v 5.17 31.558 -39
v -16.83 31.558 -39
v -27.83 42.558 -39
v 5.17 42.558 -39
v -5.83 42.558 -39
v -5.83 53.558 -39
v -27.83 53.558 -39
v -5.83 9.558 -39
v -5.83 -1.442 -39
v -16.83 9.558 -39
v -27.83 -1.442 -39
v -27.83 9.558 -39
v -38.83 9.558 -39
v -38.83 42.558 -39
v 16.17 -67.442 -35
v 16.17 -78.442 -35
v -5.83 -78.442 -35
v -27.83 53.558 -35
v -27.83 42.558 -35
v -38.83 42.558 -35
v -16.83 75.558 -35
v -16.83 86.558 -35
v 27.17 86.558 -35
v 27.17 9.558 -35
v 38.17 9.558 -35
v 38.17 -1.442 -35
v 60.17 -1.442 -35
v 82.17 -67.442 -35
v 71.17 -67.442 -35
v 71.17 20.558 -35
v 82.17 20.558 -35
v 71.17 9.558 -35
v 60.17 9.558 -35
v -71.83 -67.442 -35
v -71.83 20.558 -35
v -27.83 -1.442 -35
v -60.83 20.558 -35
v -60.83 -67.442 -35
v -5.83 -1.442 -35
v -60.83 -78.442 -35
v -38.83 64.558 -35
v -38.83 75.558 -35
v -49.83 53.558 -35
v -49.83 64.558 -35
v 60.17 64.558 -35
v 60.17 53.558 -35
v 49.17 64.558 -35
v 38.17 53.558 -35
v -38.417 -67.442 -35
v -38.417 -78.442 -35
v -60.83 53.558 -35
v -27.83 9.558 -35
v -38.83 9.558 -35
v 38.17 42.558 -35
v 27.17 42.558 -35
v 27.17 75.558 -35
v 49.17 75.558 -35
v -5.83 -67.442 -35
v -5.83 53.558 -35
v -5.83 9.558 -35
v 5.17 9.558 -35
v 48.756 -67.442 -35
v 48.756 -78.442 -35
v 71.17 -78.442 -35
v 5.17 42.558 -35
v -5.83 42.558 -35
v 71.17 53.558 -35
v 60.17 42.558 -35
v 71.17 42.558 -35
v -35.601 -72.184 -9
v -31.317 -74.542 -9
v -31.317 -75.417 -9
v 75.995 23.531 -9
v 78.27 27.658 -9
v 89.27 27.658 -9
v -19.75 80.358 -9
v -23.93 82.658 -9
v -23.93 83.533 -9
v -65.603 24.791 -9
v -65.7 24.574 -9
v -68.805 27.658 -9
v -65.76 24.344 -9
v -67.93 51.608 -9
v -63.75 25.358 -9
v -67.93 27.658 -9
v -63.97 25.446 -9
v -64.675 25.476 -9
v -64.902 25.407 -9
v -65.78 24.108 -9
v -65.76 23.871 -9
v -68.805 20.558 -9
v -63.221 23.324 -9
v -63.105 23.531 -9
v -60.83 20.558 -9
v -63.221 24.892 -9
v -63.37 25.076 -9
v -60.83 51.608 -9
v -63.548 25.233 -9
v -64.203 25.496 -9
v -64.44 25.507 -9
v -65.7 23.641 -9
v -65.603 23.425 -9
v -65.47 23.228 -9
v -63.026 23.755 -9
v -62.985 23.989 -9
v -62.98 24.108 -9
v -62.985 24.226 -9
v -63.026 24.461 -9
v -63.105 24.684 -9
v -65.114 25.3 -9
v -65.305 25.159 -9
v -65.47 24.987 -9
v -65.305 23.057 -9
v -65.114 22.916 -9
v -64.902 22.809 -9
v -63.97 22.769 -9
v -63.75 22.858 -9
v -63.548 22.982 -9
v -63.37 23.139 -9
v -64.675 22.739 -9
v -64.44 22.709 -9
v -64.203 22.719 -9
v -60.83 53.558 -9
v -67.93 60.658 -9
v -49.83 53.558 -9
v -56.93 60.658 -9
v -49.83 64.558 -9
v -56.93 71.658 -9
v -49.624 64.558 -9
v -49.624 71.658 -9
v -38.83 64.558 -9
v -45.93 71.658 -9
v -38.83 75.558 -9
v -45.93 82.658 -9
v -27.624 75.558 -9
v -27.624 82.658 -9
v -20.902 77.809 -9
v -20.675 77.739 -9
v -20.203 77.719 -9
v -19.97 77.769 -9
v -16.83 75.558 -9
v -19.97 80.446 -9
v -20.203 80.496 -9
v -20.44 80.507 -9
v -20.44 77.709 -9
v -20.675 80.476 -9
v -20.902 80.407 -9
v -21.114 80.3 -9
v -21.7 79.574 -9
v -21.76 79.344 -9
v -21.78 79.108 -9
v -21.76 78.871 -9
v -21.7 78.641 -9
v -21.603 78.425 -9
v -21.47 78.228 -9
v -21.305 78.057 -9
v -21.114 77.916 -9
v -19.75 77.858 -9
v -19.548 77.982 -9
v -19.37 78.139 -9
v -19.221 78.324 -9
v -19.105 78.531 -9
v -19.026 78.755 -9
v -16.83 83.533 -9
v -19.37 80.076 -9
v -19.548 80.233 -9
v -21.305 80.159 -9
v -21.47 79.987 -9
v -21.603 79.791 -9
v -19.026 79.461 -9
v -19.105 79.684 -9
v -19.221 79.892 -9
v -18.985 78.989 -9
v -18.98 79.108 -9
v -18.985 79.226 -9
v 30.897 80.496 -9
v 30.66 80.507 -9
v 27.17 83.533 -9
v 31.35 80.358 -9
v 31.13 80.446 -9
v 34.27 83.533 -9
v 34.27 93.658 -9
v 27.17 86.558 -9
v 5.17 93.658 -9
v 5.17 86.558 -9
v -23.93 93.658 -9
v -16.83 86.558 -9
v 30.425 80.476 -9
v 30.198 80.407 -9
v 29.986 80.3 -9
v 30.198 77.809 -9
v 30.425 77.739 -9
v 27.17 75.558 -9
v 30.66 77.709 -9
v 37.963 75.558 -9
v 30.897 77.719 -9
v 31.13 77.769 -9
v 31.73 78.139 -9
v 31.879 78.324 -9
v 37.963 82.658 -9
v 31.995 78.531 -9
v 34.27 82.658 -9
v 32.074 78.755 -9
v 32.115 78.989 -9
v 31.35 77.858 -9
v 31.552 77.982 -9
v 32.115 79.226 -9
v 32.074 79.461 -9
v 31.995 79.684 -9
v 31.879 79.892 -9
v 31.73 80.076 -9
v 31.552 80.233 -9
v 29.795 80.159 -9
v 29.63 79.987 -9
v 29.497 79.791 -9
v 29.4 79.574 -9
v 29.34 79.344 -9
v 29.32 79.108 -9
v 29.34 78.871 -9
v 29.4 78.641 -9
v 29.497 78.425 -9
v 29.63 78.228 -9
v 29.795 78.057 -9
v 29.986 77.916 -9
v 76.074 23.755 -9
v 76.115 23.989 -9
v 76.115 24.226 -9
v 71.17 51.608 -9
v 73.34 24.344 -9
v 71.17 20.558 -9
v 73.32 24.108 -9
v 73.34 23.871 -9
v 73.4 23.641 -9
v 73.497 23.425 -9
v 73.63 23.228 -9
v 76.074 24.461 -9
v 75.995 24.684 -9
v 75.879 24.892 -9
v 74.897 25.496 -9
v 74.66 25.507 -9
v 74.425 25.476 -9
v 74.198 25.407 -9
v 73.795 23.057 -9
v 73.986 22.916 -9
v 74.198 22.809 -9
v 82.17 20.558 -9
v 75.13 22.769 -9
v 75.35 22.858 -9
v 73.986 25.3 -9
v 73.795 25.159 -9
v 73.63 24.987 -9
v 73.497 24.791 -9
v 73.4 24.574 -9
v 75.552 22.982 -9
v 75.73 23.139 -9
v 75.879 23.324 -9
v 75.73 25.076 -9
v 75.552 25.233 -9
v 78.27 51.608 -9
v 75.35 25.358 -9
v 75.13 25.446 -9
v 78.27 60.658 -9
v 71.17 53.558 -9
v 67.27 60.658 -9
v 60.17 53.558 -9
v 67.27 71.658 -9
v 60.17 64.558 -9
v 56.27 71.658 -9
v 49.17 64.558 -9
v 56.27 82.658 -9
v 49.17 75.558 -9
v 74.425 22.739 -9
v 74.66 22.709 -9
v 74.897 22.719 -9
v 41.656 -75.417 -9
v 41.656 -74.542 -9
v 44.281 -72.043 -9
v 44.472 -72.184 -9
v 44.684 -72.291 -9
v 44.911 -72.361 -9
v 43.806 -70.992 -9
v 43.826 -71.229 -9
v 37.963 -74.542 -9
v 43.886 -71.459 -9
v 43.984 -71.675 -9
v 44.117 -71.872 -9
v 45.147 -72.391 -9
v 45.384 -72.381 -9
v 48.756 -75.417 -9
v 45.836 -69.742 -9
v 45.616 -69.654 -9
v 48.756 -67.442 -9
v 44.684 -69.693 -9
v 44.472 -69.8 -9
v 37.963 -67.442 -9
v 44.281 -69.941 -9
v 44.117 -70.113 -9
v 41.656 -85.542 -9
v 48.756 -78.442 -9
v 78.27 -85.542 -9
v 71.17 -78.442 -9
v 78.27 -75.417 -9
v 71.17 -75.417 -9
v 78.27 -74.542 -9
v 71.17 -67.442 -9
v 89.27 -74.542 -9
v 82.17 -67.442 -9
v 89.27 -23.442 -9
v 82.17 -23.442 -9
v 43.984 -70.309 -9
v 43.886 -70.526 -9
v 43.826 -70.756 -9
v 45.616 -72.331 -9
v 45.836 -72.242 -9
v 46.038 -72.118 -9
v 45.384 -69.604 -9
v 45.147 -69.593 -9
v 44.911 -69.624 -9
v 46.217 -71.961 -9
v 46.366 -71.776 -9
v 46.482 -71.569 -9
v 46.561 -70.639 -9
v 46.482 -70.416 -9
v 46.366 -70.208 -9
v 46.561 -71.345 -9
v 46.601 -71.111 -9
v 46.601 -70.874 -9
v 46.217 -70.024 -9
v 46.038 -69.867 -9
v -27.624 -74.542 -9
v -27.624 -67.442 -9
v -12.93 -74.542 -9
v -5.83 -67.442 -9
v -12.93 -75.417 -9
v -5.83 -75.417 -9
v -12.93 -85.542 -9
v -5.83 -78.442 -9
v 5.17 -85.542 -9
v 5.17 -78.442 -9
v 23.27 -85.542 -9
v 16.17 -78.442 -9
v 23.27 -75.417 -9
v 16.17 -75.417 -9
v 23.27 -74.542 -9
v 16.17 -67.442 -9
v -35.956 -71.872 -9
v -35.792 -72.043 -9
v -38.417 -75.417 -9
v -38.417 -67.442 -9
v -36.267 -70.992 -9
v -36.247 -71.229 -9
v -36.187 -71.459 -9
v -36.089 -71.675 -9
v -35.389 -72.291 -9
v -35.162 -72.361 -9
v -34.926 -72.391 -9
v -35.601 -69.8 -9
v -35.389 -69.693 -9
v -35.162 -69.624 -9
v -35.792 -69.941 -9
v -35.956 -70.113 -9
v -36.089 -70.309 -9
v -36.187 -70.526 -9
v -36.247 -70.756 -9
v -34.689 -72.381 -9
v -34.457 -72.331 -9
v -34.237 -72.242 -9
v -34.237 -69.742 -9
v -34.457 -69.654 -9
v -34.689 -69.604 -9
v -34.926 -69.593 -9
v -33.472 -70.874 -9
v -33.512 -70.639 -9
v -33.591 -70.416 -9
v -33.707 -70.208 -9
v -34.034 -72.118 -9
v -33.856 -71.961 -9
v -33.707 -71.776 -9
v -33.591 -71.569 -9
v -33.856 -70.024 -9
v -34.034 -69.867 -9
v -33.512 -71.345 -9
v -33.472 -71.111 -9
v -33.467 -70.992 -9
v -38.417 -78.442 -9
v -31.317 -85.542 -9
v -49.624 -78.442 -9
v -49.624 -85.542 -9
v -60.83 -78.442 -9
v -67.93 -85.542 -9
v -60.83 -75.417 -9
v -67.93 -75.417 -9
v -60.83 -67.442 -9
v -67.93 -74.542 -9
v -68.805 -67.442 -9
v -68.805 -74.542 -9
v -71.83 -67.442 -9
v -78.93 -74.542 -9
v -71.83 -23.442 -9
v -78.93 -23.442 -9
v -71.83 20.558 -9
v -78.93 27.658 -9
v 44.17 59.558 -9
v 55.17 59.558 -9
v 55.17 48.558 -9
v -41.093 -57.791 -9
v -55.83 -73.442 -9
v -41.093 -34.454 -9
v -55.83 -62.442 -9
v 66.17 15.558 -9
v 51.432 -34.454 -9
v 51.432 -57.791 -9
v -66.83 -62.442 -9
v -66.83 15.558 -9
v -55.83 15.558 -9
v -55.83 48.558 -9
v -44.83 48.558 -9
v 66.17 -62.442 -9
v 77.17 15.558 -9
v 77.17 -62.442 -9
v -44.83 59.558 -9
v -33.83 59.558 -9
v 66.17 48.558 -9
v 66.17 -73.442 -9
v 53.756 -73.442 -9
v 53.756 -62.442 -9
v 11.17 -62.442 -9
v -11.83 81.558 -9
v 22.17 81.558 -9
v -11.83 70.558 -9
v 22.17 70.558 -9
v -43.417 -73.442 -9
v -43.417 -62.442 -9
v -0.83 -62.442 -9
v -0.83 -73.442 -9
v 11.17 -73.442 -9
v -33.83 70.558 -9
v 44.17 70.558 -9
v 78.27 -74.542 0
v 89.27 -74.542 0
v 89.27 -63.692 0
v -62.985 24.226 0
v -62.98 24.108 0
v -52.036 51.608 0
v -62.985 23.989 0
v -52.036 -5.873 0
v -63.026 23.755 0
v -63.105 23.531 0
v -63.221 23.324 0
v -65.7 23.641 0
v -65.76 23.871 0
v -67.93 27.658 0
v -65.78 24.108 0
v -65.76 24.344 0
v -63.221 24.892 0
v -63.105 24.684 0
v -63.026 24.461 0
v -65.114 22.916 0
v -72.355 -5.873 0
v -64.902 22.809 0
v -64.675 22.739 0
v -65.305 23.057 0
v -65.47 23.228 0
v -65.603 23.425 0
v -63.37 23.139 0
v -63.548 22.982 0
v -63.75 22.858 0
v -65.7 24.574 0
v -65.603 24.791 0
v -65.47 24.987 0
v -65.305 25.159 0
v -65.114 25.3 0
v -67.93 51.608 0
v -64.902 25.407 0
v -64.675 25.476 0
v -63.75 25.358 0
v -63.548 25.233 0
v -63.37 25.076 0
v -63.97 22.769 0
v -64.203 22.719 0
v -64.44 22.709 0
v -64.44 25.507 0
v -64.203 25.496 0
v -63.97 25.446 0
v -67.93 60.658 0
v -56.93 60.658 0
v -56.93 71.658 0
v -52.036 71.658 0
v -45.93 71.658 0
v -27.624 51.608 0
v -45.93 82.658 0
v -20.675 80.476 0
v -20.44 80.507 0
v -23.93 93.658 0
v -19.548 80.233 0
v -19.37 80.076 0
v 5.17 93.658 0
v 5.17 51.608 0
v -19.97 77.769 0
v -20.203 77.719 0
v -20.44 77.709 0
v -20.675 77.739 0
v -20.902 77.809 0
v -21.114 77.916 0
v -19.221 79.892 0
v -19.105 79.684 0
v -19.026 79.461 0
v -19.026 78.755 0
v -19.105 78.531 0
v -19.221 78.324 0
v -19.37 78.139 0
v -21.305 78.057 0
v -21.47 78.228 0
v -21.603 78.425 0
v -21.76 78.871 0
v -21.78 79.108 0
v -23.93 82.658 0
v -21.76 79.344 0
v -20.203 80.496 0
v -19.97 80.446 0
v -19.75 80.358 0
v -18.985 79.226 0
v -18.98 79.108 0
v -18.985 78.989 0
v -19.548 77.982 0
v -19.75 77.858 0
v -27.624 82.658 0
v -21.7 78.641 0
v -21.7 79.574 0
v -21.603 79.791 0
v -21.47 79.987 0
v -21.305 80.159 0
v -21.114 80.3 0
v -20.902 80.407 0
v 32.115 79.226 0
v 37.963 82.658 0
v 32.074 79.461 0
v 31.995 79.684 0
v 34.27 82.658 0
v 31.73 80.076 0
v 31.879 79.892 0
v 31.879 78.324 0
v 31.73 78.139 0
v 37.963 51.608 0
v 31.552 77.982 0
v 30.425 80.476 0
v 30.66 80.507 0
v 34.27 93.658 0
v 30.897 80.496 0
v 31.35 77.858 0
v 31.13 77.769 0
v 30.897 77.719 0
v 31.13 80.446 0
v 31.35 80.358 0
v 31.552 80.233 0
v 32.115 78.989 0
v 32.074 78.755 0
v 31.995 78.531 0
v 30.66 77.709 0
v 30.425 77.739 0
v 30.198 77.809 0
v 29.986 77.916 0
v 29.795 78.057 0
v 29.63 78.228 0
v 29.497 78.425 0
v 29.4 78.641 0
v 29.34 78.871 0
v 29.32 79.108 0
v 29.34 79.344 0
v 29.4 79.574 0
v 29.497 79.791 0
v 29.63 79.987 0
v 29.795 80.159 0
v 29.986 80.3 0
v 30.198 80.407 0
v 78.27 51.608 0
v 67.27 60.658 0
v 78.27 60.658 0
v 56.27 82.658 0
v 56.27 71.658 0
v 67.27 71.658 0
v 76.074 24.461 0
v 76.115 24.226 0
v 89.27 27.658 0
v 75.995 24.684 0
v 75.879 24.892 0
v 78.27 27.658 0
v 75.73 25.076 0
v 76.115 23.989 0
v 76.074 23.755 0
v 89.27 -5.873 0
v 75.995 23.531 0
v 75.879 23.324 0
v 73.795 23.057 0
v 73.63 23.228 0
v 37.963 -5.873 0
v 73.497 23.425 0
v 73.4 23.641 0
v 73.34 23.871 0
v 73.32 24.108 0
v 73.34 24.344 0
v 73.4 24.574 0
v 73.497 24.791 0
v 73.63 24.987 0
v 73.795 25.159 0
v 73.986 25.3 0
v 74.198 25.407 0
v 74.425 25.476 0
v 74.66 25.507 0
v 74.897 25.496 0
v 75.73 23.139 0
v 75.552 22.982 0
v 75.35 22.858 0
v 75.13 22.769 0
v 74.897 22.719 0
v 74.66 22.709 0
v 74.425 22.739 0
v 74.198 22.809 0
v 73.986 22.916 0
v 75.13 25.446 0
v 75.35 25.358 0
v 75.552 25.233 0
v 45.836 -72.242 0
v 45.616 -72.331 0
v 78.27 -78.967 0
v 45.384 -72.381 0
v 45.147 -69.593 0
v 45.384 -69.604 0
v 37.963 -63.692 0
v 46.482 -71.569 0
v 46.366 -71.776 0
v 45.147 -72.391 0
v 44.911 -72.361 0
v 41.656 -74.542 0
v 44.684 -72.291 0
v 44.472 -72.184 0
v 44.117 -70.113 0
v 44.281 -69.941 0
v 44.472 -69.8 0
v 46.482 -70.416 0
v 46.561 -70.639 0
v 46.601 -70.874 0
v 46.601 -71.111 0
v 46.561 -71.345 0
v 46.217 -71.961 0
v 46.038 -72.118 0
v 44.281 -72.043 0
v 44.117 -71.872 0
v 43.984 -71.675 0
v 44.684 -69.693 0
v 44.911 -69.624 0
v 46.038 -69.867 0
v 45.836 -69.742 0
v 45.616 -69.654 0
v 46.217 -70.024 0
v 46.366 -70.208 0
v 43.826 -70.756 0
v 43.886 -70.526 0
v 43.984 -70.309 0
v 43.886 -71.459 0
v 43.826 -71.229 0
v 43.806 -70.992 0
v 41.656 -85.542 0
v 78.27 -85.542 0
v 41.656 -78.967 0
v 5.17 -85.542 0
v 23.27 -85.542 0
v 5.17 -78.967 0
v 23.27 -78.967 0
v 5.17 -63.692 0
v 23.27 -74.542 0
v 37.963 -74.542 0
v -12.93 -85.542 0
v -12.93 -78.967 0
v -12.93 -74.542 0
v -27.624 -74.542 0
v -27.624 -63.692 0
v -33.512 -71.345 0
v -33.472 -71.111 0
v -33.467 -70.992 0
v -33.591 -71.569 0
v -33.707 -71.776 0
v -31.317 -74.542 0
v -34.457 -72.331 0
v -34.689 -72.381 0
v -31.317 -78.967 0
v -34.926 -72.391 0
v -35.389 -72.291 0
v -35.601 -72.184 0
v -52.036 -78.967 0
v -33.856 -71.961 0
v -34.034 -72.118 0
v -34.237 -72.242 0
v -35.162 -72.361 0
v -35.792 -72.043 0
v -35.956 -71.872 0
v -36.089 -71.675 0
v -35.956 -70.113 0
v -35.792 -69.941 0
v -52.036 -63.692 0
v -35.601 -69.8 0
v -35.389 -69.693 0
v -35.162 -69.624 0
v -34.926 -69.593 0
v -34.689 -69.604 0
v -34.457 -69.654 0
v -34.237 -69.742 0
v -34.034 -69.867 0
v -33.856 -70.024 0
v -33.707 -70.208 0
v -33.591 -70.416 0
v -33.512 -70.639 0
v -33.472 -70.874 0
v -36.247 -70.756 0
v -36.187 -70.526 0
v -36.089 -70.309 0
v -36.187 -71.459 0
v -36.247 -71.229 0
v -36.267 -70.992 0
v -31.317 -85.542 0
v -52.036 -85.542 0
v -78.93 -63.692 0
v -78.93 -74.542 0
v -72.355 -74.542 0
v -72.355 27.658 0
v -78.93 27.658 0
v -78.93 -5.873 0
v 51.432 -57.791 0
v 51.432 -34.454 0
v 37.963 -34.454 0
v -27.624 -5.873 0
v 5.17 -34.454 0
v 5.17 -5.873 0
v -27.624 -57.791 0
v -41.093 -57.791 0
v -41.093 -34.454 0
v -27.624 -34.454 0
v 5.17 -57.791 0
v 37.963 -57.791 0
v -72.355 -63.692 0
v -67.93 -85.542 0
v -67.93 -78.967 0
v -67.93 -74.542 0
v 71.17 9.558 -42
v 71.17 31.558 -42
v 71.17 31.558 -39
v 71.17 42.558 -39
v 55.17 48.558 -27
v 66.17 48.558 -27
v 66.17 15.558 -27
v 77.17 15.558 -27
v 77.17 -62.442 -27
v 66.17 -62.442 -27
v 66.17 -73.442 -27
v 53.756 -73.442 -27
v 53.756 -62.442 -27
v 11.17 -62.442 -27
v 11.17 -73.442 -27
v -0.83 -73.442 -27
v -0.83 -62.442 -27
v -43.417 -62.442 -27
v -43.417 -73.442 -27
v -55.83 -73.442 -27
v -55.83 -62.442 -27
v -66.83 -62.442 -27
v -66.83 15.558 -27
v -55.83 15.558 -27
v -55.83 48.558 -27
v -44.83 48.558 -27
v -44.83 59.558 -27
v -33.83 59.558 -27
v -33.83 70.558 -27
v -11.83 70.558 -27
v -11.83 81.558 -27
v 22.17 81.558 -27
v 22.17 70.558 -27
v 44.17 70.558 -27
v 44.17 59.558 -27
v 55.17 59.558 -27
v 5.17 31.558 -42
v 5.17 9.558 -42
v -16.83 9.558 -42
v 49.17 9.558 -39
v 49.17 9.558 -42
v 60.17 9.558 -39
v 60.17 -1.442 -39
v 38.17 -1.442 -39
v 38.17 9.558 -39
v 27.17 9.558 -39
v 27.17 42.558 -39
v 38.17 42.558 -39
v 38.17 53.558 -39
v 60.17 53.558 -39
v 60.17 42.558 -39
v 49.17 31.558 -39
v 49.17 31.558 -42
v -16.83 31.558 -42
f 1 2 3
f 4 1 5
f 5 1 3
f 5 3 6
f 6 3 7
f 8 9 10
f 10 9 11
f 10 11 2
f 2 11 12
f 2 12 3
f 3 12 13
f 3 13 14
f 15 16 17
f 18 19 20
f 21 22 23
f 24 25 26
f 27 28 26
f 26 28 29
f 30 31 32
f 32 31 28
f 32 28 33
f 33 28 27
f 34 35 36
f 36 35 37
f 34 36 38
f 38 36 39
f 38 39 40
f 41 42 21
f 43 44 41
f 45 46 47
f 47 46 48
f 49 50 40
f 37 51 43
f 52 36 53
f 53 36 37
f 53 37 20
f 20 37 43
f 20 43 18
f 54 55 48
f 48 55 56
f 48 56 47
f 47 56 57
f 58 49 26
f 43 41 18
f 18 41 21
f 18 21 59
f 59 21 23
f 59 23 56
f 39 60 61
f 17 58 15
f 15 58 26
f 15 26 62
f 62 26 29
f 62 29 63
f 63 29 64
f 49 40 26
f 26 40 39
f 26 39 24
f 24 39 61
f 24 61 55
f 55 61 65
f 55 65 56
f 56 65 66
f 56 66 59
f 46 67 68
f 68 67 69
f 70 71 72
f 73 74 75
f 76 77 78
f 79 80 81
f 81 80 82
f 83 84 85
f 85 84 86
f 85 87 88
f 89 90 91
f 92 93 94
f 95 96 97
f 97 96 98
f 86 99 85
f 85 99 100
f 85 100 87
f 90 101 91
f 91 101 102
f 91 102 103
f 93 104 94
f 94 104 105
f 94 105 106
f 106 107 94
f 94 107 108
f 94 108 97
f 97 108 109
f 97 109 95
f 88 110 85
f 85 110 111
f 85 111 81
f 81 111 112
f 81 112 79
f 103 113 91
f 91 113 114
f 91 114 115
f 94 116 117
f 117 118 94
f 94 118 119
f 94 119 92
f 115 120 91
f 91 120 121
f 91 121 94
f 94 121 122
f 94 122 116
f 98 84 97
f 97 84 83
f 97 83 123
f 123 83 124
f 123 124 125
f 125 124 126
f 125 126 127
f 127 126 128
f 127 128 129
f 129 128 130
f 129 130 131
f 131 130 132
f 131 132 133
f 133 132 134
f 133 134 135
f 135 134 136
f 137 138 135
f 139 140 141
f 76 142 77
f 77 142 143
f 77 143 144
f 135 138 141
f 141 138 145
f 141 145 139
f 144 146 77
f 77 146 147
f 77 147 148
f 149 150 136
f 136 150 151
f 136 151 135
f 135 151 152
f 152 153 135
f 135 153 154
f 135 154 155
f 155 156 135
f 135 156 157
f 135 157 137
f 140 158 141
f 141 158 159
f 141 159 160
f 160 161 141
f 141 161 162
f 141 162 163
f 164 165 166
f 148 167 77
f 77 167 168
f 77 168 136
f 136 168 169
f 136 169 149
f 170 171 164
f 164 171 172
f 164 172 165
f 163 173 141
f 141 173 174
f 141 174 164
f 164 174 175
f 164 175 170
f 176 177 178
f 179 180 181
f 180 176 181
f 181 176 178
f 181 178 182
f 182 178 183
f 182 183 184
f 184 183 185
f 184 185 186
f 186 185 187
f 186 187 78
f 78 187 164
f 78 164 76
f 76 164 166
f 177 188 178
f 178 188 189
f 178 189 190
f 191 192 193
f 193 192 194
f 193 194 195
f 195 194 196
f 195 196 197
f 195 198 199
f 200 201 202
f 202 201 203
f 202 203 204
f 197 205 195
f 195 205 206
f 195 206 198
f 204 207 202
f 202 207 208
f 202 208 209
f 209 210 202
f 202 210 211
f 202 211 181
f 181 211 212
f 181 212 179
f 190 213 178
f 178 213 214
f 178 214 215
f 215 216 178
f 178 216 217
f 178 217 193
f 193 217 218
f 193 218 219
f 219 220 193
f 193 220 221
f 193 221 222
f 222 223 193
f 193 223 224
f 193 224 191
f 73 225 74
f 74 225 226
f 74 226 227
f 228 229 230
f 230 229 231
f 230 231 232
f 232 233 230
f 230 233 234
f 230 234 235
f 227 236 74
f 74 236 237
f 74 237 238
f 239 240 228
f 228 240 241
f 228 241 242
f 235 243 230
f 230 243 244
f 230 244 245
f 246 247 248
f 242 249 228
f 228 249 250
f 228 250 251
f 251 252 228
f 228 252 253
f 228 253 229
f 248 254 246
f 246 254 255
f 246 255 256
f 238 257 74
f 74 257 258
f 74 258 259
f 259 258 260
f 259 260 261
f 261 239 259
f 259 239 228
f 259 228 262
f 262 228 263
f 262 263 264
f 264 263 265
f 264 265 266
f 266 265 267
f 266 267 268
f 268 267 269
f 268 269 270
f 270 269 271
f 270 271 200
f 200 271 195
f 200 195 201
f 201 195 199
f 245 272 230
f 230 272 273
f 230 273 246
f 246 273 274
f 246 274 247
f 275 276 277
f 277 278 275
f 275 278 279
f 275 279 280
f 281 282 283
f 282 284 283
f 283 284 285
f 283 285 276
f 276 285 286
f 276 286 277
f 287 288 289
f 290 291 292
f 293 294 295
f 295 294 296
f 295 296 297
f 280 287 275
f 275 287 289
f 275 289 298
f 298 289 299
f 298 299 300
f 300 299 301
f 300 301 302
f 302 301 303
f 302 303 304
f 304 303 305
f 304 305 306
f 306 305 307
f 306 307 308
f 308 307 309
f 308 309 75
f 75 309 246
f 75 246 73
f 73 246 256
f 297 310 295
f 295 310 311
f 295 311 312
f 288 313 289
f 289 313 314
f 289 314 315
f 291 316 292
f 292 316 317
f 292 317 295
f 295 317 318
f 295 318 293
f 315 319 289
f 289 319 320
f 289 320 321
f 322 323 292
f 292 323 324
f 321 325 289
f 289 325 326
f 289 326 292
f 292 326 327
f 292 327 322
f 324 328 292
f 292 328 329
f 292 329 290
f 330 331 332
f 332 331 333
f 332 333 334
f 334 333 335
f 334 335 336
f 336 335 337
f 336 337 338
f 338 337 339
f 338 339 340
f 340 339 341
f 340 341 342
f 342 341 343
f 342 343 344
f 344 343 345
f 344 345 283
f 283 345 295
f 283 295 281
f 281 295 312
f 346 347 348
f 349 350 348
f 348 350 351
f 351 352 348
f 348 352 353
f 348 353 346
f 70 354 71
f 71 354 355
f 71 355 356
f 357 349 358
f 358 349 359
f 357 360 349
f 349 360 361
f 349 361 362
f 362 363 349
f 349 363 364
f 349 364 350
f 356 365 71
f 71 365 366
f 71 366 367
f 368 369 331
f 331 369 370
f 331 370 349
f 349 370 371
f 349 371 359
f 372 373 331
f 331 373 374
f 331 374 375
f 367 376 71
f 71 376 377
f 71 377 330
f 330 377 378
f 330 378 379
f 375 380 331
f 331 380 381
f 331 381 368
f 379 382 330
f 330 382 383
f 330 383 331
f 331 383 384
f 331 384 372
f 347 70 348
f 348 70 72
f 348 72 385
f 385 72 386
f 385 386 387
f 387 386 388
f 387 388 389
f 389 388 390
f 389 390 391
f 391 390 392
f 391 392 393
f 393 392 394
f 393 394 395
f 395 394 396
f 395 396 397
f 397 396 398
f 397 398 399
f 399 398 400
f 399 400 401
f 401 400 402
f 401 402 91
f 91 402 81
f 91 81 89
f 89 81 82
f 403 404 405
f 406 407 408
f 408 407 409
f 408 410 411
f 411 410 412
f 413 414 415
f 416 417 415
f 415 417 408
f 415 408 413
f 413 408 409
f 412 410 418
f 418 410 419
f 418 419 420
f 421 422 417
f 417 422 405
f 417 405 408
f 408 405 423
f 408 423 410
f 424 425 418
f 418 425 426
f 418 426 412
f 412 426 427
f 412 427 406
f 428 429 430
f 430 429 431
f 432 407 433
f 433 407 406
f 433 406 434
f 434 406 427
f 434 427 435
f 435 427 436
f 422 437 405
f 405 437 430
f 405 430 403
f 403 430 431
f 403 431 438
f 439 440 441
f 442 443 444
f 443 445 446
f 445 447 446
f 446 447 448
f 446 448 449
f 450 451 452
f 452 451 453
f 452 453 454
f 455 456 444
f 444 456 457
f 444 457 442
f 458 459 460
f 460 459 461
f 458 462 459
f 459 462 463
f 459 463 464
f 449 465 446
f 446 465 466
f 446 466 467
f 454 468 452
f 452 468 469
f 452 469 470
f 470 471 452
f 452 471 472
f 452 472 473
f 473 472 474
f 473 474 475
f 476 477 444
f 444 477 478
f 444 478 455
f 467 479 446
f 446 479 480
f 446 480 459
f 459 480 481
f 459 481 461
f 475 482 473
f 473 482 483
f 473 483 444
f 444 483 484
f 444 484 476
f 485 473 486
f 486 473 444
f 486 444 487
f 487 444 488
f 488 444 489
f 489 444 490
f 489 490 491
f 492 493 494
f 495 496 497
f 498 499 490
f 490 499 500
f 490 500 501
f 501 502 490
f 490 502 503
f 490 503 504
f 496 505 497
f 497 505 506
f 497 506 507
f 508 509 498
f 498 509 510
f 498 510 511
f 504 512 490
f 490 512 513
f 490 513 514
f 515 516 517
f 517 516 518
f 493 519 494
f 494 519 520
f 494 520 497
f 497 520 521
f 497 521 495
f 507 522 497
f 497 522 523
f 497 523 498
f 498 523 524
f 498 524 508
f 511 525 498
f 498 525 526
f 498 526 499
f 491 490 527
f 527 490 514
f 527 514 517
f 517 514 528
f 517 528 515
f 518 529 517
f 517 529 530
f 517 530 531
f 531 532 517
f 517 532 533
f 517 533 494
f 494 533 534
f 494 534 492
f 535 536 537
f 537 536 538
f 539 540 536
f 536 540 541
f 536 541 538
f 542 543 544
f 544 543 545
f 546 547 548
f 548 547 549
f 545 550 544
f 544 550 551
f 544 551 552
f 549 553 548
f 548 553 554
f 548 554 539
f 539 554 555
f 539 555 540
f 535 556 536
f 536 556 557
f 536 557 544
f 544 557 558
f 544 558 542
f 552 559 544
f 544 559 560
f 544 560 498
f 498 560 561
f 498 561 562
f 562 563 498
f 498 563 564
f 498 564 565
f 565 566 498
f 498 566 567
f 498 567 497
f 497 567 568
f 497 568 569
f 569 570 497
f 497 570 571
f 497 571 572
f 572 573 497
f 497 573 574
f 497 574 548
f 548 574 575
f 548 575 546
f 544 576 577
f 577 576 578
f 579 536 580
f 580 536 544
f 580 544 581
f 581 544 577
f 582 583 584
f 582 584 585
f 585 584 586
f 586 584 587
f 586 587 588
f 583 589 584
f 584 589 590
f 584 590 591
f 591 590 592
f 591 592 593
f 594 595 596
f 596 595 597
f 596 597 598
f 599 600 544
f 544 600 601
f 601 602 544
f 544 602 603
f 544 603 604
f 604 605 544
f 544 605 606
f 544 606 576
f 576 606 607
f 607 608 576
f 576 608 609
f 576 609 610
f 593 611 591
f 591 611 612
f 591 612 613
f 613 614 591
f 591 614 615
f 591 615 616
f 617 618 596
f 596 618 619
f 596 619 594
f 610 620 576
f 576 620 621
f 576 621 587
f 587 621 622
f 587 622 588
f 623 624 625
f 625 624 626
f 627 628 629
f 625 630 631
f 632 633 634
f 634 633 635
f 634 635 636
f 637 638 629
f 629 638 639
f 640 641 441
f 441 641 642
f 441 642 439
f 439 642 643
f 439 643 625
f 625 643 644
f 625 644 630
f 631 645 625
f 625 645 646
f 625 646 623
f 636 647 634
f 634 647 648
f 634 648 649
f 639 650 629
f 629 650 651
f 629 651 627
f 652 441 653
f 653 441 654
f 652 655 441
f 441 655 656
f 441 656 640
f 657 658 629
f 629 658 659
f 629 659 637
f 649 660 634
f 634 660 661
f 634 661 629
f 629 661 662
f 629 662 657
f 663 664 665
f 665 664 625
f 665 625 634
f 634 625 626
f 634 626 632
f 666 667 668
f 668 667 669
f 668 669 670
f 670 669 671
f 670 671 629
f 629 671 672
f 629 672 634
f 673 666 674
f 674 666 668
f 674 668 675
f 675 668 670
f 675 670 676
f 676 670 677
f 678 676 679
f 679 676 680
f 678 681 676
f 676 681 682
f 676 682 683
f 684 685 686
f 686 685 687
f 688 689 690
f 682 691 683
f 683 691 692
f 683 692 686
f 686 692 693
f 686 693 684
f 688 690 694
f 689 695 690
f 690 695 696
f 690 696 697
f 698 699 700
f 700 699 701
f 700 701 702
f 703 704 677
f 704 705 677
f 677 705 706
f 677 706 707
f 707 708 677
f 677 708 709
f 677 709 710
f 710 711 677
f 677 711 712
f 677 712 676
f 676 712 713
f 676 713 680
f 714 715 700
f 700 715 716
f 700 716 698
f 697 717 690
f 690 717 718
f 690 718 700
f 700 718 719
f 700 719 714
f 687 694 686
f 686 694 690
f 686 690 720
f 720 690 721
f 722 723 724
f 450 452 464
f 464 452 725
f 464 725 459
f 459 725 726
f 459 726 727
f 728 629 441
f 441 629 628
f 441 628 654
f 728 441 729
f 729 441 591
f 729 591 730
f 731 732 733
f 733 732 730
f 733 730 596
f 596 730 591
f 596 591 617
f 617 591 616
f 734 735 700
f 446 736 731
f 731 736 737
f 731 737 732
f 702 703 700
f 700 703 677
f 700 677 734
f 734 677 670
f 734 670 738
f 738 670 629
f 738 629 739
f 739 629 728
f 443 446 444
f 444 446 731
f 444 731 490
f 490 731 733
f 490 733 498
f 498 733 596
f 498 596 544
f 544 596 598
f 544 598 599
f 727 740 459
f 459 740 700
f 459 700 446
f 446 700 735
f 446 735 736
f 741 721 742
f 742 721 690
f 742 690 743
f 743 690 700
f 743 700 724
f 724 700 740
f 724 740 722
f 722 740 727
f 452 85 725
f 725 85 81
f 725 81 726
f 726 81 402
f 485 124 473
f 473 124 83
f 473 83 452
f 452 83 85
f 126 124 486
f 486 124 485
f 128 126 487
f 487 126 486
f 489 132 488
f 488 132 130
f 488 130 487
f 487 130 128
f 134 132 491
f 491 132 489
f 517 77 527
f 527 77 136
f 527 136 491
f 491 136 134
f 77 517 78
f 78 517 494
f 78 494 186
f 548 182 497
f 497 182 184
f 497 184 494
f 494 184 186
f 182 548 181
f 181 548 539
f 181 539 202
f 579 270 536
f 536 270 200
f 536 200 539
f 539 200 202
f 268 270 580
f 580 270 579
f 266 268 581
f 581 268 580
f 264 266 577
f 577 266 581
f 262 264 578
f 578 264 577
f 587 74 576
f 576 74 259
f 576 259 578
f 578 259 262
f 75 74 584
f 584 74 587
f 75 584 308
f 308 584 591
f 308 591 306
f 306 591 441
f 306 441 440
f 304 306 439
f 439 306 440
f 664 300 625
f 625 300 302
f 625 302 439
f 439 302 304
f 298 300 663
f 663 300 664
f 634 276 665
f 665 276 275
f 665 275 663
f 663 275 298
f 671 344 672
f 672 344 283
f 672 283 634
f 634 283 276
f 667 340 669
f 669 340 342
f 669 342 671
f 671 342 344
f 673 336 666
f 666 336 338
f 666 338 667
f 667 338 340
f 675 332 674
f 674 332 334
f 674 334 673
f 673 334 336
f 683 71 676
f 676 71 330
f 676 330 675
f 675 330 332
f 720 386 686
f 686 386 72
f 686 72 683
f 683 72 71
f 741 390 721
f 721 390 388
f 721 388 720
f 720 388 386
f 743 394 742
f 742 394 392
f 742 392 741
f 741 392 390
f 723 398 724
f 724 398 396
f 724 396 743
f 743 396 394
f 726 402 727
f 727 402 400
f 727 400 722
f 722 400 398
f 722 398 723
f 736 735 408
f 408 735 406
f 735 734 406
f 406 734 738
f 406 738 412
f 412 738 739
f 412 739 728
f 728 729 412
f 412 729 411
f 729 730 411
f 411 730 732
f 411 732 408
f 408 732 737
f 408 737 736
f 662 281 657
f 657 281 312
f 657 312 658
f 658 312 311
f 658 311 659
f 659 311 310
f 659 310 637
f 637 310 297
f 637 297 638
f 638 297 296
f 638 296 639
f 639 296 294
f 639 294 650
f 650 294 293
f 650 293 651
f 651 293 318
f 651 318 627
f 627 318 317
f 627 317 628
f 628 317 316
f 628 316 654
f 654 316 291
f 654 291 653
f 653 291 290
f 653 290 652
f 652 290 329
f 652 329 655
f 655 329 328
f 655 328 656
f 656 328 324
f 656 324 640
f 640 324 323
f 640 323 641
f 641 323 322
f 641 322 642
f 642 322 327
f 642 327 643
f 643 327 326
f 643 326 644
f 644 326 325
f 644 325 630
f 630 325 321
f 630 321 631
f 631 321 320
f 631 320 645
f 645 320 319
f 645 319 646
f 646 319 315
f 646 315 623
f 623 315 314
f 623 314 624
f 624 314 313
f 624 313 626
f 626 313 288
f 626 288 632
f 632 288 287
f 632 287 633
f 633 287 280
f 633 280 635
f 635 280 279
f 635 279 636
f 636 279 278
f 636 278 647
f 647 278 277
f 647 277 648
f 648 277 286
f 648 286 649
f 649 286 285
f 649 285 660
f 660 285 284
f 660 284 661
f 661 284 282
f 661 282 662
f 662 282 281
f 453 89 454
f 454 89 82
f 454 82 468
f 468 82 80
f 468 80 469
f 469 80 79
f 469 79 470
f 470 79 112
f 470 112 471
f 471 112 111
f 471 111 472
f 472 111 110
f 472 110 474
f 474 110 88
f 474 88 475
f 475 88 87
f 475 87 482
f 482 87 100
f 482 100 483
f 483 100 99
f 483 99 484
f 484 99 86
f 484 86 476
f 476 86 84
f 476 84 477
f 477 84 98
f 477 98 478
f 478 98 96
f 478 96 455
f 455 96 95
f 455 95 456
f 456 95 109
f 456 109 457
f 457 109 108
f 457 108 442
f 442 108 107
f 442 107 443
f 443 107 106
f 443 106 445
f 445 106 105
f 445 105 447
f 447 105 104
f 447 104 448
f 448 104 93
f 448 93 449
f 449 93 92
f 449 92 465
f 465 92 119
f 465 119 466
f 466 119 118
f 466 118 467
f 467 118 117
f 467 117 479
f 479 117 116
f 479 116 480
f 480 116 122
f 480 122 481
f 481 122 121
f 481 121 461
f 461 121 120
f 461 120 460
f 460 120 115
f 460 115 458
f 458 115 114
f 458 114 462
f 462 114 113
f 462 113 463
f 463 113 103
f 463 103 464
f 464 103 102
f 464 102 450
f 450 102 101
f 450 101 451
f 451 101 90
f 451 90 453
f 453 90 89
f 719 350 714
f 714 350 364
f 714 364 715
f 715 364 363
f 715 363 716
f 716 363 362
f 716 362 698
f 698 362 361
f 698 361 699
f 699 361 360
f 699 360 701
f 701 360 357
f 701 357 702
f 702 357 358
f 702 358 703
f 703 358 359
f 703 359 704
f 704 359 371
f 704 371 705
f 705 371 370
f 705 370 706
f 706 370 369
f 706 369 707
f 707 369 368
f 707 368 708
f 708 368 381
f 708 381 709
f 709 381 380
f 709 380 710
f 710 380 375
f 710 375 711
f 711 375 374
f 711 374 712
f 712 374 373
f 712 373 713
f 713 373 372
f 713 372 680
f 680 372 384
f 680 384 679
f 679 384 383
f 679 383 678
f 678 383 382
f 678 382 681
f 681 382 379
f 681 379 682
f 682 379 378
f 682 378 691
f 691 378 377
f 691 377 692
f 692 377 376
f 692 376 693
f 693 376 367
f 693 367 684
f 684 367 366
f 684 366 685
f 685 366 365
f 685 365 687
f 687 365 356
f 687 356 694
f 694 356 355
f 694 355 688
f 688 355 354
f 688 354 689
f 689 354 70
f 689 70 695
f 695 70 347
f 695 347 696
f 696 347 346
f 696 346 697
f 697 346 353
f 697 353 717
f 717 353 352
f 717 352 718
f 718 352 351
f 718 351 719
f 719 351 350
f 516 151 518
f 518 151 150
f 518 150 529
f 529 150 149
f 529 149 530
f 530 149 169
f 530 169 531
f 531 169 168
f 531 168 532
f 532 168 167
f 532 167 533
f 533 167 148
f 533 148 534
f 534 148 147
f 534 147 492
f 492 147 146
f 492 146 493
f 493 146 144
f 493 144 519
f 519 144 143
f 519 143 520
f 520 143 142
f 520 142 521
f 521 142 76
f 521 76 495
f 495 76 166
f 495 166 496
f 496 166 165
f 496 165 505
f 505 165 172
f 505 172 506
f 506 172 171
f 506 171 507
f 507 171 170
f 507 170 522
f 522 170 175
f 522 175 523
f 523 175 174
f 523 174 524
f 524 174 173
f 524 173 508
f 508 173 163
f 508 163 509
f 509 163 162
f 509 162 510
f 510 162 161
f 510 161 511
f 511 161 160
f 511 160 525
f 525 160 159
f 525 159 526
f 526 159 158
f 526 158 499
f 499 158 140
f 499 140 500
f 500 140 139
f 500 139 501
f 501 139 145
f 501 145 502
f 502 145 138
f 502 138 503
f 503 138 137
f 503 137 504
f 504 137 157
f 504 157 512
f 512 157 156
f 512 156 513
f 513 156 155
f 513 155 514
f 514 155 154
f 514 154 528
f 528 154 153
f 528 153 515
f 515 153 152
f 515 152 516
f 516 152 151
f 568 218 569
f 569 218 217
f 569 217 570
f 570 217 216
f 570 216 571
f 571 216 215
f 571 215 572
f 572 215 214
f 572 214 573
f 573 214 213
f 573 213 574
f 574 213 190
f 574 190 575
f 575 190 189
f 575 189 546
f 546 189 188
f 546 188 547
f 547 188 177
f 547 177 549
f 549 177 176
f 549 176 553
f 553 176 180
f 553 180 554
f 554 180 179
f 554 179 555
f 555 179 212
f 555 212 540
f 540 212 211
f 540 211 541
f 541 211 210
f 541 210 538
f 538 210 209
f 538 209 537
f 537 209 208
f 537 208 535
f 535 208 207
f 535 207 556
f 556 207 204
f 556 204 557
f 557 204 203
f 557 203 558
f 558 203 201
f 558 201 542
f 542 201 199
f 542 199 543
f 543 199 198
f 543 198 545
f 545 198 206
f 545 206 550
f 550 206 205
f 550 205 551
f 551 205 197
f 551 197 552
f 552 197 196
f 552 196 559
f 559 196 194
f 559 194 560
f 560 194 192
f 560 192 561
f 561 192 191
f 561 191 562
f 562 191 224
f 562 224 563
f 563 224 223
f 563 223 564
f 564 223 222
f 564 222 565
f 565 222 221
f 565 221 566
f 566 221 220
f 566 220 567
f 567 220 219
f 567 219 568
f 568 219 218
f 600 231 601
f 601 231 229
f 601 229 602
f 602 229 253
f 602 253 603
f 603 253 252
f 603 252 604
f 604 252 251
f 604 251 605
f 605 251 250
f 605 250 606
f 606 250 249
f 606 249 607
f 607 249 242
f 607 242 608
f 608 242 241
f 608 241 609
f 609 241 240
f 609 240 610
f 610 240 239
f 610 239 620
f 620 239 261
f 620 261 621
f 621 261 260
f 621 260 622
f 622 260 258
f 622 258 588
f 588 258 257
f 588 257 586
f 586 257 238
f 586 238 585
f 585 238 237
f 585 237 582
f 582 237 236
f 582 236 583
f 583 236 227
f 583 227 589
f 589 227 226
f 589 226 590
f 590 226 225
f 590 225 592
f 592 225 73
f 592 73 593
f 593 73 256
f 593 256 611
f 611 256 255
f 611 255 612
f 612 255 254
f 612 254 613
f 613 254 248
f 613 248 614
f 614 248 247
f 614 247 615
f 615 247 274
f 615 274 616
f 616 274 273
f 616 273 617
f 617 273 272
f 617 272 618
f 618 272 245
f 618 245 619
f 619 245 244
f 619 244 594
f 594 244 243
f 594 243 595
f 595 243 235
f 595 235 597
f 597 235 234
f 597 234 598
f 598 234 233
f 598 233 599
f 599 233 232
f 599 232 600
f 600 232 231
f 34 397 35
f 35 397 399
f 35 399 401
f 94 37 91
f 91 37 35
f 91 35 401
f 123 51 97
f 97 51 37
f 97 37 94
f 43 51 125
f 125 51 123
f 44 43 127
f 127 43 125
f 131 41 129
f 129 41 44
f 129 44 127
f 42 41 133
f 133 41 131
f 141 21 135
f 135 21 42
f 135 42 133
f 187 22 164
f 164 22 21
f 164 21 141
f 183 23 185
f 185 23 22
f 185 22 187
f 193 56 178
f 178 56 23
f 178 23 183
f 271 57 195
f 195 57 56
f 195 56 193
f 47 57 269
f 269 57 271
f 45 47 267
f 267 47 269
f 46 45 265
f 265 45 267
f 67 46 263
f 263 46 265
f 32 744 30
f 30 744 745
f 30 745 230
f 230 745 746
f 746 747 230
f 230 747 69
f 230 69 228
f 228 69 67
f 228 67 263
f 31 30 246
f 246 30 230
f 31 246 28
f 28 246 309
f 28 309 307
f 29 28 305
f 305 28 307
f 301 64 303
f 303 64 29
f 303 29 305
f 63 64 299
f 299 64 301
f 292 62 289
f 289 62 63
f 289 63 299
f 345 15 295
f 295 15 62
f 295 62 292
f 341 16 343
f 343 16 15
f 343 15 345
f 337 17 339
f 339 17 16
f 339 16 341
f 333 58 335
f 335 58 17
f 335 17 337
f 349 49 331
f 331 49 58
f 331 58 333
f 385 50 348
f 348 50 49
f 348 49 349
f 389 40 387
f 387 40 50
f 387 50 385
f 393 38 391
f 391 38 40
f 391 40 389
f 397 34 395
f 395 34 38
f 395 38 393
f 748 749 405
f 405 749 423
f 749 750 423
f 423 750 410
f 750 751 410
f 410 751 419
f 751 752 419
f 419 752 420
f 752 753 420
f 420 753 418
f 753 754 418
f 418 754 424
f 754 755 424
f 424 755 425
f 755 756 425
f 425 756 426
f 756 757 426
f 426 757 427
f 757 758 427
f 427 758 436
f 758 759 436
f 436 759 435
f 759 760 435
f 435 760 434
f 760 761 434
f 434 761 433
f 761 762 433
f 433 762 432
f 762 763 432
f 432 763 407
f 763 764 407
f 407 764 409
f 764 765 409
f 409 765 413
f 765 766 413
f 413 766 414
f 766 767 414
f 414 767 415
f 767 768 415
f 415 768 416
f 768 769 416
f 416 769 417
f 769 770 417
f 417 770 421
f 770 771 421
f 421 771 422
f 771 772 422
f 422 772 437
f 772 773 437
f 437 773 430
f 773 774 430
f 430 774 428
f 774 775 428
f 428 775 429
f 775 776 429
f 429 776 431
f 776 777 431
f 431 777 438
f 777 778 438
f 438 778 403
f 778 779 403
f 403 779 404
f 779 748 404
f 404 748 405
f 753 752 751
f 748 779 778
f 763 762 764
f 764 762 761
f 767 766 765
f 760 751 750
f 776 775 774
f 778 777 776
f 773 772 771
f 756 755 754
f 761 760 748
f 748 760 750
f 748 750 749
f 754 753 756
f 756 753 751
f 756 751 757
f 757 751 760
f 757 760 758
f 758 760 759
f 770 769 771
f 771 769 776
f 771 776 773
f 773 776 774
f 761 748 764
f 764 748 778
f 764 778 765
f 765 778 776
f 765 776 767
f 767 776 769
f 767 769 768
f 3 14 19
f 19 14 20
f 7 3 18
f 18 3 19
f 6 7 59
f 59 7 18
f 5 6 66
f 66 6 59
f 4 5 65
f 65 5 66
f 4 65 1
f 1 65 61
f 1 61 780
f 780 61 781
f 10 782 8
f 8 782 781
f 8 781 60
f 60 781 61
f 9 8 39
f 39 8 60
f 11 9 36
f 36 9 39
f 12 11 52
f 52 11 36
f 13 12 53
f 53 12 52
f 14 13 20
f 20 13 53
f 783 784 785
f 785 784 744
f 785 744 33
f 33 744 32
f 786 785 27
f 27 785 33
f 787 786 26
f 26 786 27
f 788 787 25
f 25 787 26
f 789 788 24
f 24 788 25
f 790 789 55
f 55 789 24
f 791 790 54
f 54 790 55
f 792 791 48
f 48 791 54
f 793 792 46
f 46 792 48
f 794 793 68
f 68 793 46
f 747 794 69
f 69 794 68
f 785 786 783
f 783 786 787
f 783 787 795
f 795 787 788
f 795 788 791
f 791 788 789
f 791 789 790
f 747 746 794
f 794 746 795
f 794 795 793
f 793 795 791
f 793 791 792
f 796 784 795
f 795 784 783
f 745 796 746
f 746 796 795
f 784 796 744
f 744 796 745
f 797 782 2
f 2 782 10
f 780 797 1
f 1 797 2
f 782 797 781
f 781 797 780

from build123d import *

# Parameters (mm, degrees)
SALIENTE_EXTRUIR1_DEPTH = 9
CROQUIS4_W              = 92.524179437
CROQUIS4_H              = 23.337512491
CROQUIS4_R              = 1.4
CORTAR_EXTRUIR1_DEPTH   = 130.69901246
SALIENTE_EXTRUIR2_DEPTH = 18
SALIENTE_EXTRUIR3_DEPTH = 8
SALIENTE_EXTRUIR4_DEPTH = 4
CROQUIS9_W              = 22
CROQUIS9_H              = 22
SALIENTE_EXTRUIR5_DEPTH = 3


with BuildPart() as part:
    # Croquis3 → Saliente-Extruir1 (new body)
    with BuildSketch(Plane.XY):
        Polygon((-78.930426729, 27.657765941), (-78.930426729, -74.542234059), (-67.930426729, -74.542234059), (-67.930426729, -85.542234059), (-31.316827161, -85.542234059), (-31.316827161, -74.542234059), (-12.930426729, -74.542234059), (-12.930426729, -85.542234059), (23.269573271, -85.542234059), (23.269573271, -74.542234059), (41.655973703, -74.542234059), (41.655973703, -85.542234059), (78.269573271, -85.542234059), (78.269573271, -74.542234059), (89.269573271, -74.542234059), (89.269573271, 27.657765941), (78.269573271, 27.657765941), (78.269573271, 60.657765941), (67.269573271, 60.657765941), (67.269573271, 71.657765942), (56.269573271, 71.657765942), (56.269573271, 82.657765942), (34.269573271, 82.657765942), (34.269573271, 93.657765942), (-23.930426729, 93.657765942), (-23.930426729, 82.657765942), (-45.930426729, 82.657765942), (-45.930426729, 71.657765942), (-56.930426729, 71.657765942), (-56.930426729, 60.657765941), (-67.930426729, 60.657765941), (-67.930426729, 27.657765941), align=None)
    extrude(amount=-SALIENTE_EXTRUIR1_DEPTH)

    # Croquis4 → Cortar-Extruir1 (cut, through all)
    with BuildSketch(Plane(origin=(0, 0, -9), x_dir=(-1, 0, 0), z_dir=(0, 0, -1))):
        with Locations((-5.16957327, -46.12250801)):
            Rectangle(CROQUIS4_W, CROQUIS4_H)
        with Locations((-74.719573271, 24.107765941)):
            Circle(CROQUIS4_R)
        with Locations((-30.719573271, 79.107765942)):
            Circle(CROQUIS4_R)
        with Locations(Location((20.380426729, 79.107765942, 0), (0, 0, 180))):
            Circle(CROQUIS4_R)
        with Locations(Location((34.866827161, -70.992234059, 0), (0, 0, 180))):
            Circle(CROQUIS4_R)
        with Locations(Location((64.380426729, 24.107765941, 0), (0, 0, 180))):
            Circle(CROQUIS4_R)
        with Locations((-45.205973703, -70.992234059)):
            Circle(CROQUIS4_R)
    extrude(amount=-CORTAR_EXTRUIR1_DEPTH, mode=Mode.SUBTRACT)

    # Croquis5 → Saliente-Extruir2 (add)
    with BuildSketch(Plane(origin=(0, 0, -9), x_dir=(-1, 0, 0), z_dir=(0, 0, -1))):
        Polygon((71.830426729, 20.557765941), (60.830426729, 20.557765941), (60.830426729, 53.557765941), (49.830426729, 53.557765941), (49.830426729, 64.557765942), (38.830426729, 64.557765942), (38.830426729, 75.557765942), (16.830426729, 75.557765942), (16.830426729, 86.557765942), (-27.169573271, 86.557765942), (-27.169573271, 75.557765942), (-49.169573271, 75.557765942), (-49.169573271, 64.557765942), (-60.169573271, 64.557765942), (-60.169573271, 53.557765941), (-71.169573271, 53.557765941), (-71.169573271, 20.557765941), (-82.169573271, 20.557765941), (-82.169573271, -67.442234059), (-71.169573271, -67.442234059), (-71.169573271, -78.442234059), (-48.755973703, -78.442234059), (-48.755973703, -67.442234059), (-16.169573271, -67.442234059), (-16.169573271, -78.442234059), (5.830426729, -78.442234059), (5.830426729, -67.442234059), (38.416827161, -67.442234059), (38.416827161, -78.442234059), (60.830426729, -78.442234059), (60.830426729, -67.442234059), (71.830426729, -67.442234059), align=None)
        Polygon((-66.169573271, 48.557765941), (-66.169573271, 15.557765941), (-77.169573271, 15.557765941), (-77.169573271, -62.442234059), (-66.169573271, -62.442234059), (-66.169573271, -73.442234059), (-53.755973703, -73.442234059), (-53.755973703, -62.442234059), (-11.169573271, -62.442234059), (-11.169573271, -73.442234059), (0.830426729, -73.442234059), (0.830426729, -62.442234059), (43.416827161, -62.442234059), (43.416827161, -73.442234059), (55.830426729, -73.442234059), (55.830426729, -62.442234059), (66.830426729, -62.442234059), (66.830426729, 15.557765941), (55.830426729, 15.557765941), (55.830426729, 48.557765941), (44.830426729, 48.557765941), (44.830426729, 59.557765942), (33.830426729, 59.557765942), (33.830426729, 70.557765942), (11.830426729, 70.557765942), (11.830426729, 81.557765942), (-22.169573271, 81.557765942), (-22.169573271, 70.557765942), (-44.169573271, 70.557765942), (-44.169573271, 59.557765942), (-55.169573271, 59.557765942), (-55.169573271, 48.557765941), align=None, mode=Mode.SUBTRACT)
    extrude(amount=SALIENTE_EXTRUIR2_DEPTH)

    # Croquis7 → Saliente-Extruir3 (add)
    with BuildSketch(Plane(origin=(0, 0, -27), x_dir=(-1, 0, 0), z_dir=(0, 0, -1))):
        Polygon((71.830426729, -67.442234059), (71.830426729, 20.557765941), (60.830426729, 20.557765941), (60.830426729, 53.557765941), (49.830426729, 53.557765941), (49.830426729, 64.557765942), (38.830426729, 64.557765942), (38.830426729, 75.557765942), (16.830426729, 75.557765942), (16.830426729, 86.557765942), (-27.169573271, 86.557765942), (-27.169573271, 75.557765942), (-49.169573271, 75.557765942), (-49.169573271, 64.557765942), (-60.169573271, 64.557765942), (-60.169573271, 53.557765941), (-71.169573271, 53.557765941), (-71.169573271, 20.557765941), (-82.169573271, 20.557765941), (-82.169573271, -67.442234059), (-71.169573271, -67.442234059), (-71.169573271, -78.442234059), (-48.755973703, -78.442234059), (-48.755973703, -67.442234059), (-16.169573271, -67.442234059), (-16.169573271, -78.442234059), (5.830426729, -78.442234059), (5.830426729, -67.442234059), (38.416827161, -67.442234059), (38.416827161, -78.442234059), (60.830426729, -78.442234059), (60.830426729, -67.442234059), align=None)
    extrude(amount=SALIENTE_EXTRUIR3_DEPTH)

    # Croquis8 → Saliente-Extruir4 (add)
    with BuildSketch(Plane(origin=(0, 0, -35), x_dir=(-1, 0, 0), z_dir=(0, 0, -1))):
        Polygon((-71.169573271, 20.557765941), (-71.169573271, 9.557765941), (-60.169573271, 9.557765941), (-60.169573271, -1.442234059), (-38.169573271, -1.442234059), (-38.169573271, 9.557765941), (-27.169573271, 9.557765941), (-27.169573271, 20.557765941), (-27.169573271, 42.557765941), (-38.169573271, 42.557765941), (-38.169573271, 53.557765941), (-60.169573271, 53.557765941), (-60.169573271, 42.557765941), (-71.169573271, 42.557765941), align=None)
        Polygon((38.830426729, 20.557765941), (38.830426729, 9.557765941), (27.830426729, 9.557765941), (27.830426729, -1.442234059), (5.830426729, -1.442234059), (5.830426729, 9.557765941), (-5.169573271, 9.557765941), (-5.169573271, 20.557765941), (-5.169573271, 42.557765941), (5.830426729, 42.557765941), (5.830426729, 53.557765941), (27.830426729, 53.557765941), (27.830426729, 42.557765941), (38.830426729, 42.557765941), align=None)
    extrude(amount=SALIENTE_EXTRUIR4_DEPTH)

    # Croquis9 → Saliente-Extruir5 (add)
    with BuildSketch(Plane(origin=(0, 0, -39), x_dir=(-1, 0, 0), z_dir=(0, 0, -1))):
        with Locations((-60.169573271, 20.557765941)):
            Rectangle(CROQUIS9_W, CROQUIS9_H)
        with Locations((5.830426729, 20.557765941)):
            Rectangle(CROQUIS9_W, CROQUIS9_H)
    extrude(amount=SALIENTE_EXTRUIR5_DEPTH)


solid = part.part
